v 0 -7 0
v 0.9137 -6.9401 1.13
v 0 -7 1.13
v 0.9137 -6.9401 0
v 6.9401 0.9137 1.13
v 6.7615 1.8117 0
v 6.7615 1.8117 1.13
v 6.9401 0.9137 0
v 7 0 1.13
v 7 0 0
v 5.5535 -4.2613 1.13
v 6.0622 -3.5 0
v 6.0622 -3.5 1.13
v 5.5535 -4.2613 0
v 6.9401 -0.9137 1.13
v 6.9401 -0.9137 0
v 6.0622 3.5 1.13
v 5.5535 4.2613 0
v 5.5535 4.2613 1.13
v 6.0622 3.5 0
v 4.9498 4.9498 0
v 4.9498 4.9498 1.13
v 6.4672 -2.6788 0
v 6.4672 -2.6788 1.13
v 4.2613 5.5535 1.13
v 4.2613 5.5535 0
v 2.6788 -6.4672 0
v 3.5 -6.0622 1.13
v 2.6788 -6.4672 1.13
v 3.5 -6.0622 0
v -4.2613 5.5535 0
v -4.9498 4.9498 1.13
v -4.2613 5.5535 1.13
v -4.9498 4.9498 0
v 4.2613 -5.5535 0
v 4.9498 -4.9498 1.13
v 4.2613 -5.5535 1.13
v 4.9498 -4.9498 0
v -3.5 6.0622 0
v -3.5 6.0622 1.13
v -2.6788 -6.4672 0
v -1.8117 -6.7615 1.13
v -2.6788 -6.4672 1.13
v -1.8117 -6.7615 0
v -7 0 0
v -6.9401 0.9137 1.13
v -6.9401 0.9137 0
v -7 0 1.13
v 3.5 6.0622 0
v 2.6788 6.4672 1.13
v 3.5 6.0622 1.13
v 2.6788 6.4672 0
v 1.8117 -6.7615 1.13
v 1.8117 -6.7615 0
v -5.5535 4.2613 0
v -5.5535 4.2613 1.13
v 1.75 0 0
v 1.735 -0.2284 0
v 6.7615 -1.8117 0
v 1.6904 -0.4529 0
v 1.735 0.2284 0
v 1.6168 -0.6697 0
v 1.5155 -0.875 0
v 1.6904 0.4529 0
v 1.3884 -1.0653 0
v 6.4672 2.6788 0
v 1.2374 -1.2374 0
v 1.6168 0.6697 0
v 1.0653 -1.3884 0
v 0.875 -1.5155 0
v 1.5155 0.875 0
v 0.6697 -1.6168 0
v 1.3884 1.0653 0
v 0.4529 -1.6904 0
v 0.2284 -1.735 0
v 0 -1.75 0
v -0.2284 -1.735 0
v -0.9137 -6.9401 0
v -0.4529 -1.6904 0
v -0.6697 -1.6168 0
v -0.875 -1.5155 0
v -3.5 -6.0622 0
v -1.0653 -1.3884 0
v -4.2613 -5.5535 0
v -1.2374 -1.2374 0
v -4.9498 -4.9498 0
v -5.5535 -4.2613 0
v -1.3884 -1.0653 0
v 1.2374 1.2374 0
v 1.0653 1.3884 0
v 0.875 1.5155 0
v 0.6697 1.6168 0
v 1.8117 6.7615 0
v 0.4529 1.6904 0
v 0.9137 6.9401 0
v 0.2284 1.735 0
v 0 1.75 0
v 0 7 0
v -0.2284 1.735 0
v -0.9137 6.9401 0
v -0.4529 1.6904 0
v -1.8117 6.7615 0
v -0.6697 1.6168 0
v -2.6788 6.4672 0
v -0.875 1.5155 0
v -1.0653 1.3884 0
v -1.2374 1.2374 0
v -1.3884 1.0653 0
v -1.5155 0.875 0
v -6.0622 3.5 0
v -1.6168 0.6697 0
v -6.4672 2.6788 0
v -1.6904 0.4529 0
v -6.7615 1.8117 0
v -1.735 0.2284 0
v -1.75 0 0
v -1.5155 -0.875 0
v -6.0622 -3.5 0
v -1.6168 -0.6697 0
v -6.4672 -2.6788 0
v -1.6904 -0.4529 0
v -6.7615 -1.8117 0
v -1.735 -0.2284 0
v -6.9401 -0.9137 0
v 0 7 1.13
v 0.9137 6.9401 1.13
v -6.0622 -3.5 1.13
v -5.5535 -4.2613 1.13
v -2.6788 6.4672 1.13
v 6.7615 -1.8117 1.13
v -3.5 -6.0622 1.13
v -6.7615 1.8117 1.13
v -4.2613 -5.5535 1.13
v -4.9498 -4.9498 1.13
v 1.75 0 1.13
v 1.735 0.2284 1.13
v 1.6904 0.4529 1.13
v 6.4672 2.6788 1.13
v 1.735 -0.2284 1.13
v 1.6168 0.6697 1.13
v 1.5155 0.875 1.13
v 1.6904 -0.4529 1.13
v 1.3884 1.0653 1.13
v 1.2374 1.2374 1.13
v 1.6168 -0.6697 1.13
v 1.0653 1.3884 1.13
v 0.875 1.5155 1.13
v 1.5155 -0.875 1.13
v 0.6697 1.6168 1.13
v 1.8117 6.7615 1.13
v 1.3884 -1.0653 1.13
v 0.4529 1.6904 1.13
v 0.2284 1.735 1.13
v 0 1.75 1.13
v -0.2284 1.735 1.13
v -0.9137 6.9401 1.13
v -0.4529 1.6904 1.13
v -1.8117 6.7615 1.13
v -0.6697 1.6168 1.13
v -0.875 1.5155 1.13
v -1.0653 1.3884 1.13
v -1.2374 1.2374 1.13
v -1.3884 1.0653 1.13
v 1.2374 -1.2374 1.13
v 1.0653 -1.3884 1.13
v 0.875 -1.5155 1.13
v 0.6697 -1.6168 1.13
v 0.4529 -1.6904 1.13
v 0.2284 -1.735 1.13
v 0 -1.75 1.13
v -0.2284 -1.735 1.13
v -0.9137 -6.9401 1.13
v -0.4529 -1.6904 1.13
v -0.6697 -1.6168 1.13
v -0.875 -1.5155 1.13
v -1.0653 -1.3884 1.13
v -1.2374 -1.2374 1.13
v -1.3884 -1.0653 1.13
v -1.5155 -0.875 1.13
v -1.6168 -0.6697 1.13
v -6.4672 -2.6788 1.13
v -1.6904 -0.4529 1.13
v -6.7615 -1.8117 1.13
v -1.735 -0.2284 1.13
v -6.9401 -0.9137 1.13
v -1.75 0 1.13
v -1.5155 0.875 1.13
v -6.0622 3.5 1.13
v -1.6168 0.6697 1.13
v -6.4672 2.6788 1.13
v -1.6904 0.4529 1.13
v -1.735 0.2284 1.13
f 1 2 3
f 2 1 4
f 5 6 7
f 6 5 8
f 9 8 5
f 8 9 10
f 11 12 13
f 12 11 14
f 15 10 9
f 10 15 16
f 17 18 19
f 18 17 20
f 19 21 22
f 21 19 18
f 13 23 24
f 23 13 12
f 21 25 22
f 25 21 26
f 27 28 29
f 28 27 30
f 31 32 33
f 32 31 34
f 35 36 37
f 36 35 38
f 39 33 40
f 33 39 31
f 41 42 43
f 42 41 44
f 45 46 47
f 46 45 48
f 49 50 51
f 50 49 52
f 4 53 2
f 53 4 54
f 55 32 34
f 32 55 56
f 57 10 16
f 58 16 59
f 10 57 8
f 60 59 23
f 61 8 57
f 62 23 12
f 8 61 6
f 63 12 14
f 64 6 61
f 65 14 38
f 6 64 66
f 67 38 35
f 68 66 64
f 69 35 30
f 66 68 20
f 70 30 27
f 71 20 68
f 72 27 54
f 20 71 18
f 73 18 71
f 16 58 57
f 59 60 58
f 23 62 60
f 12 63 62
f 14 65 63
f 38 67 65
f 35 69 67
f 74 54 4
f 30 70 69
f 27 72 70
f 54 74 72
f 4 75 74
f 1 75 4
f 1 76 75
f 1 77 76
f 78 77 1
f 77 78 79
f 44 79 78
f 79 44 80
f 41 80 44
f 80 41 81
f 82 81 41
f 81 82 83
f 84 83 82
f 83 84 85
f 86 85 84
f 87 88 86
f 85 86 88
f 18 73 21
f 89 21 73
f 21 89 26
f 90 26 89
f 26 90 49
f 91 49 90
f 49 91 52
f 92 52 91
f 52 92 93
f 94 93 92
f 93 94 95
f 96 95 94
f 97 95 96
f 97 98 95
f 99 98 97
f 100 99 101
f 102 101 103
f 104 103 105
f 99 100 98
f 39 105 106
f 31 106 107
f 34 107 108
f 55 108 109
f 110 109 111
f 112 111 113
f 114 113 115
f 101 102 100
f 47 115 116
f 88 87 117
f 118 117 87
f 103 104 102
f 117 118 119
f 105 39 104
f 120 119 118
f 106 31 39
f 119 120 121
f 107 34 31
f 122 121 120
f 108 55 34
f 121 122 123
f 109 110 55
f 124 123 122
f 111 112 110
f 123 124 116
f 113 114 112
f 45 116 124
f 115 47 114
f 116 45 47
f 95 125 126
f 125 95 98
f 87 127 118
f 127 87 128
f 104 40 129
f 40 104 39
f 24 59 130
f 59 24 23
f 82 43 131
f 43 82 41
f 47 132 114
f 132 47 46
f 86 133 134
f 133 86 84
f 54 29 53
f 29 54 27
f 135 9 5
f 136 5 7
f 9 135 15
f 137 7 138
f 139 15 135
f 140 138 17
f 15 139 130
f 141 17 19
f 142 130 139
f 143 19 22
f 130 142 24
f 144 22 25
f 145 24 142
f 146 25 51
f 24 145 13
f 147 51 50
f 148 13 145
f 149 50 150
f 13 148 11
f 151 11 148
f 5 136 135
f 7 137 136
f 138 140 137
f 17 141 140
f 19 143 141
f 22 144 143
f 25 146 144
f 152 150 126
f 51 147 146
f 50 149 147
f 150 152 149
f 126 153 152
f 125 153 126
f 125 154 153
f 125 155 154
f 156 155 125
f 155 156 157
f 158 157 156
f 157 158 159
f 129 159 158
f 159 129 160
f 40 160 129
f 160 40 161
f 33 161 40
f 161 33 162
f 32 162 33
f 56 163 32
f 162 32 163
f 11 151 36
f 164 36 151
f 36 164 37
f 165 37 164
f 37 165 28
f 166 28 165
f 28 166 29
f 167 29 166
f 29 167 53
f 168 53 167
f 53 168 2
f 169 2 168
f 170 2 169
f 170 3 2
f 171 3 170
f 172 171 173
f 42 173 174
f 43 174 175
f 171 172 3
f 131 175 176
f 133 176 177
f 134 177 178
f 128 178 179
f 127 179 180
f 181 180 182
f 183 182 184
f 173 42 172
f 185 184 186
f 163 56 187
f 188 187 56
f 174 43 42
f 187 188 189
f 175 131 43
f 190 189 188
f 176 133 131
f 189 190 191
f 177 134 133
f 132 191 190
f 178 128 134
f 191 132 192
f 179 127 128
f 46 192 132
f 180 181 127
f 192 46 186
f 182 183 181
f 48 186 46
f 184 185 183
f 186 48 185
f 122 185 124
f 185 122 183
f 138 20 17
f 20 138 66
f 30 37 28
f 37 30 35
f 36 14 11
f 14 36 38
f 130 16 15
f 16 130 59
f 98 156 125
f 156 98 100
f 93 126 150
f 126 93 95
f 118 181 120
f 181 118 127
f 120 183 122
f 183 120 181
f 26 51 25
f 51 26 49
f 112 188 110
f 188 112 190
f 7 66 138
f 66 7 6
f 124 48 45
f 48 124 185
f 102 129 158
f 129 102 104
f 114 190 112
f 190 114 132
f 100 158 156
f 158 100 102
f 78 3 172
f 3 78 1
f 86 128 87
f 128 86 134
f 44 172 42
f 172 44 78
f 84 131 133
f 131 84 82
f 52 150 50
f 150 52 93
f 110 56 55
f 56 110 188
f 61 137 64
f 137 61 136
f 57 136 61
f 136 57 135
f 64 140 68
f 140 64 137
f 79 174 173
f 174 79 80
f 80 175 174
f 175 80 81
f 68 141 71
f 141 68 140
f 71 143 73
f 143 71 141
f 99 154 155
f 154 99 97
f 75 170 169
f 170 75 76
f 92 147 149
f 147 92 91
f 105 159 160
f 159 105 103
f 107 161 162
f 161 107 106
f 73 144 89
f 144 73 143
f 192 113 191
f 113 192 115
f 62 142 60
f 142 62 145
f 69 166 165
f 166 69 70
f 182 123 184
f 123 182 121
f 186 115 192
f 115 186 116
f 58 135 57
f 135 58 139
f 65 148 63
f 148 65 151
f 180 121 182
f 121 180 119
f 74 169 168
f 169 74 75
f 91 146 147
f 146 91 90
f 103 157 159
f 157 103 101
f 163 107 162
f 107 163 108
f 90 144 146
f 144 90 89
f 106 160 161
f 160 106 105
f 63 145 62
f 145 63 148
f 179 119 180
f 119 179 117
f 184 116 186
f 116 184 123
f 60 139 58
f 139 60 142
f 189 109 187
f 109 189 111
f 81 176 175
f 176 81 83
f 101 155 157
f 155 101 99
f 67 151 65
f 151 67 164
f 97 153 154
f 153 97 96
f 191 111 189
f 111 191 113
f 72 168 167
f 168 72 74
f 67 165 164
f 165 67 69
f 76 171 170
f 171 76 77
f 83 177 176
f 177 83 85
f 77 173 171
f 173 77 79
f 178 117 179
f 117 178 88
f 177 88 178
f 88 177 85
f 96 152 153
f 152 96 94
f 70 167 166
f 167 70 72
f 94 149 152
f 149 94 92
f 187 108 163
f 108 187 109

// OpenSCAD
// file: parameters.scad
// =============================================================================
// Gen-BB Vernier flux-claw ultra - WOUND-AWARE (HARD GATE)
// Dual-rotor vernier: Rotor B +22.5 deg vs 12-slot stator; O5 flux claws
// =============================================================================

wire_awg            = 26;
wire_od             = 0.45;
turns               = 215;      // +5 vs Gen-AY 210
fill                = 0.70;
layers_per_face     = 2;
wind_build_axial    = layers_per_face * wire_od * fill;   // 0.63 mm
wind_build_radial   = 3 * wire_od * fill;                 // 0.945 mm

coil_id_r           = 14.0;
coil_od_r           = 61.0;
span_deg            = 25.0;
former_web          = 1.20;     // print floor LB walls
flange_t            = 0.60;
wall                = 1.2;
slot_w              = 2.4;
mount_hole          = 3.5;
tab_len             = 7.0;

former_bare_h       = former_web + 2 * flange_t;            // 2.40 mm
coil_envelope_h     = former_bare_h + 2 * wind_build_axial; // 3.66 mm

run_clear           = 0.50;
gap_spacer_h        = run_clear + wind_build_axial;         // 1.13 mm
m2m                 = coil_envelope_h + 2 * run_clear;      // 4.66 mm

coil_stations       = 12;
bay_r_in            = coil_id_r - 2.0 - wind_build_radial;
bay_r_out           = coil_od_r + 2.0 + wind_build_radial;
bay_span            = span_deg + 4.0;
bay_offset          = 2.0;
stator_thick        = former_bare_h;
stator_od           = 160.0;
shaft_clear_stator  = 34.0;
coil_mount_r        = 25.5;

large_pocket_d      = 20.3;
small_pocket_d      = 5.3;
pocket_h            = 5.2;
large_n             = 8;
R_large             = 37.5;     // closer to copper centroid vs AY R=38.0
R_small_inner       = 23.5;
R_small_mid         = 37.5;
R_small_outer       = 53.5;
carrier_od          = 156.0;
carrier_thick       = 7.5;
hub_h               = 10.0;
hub_od              = 30.0;
rotor_b_offset_deg  = 22.5;     // vernier offset vs 12-slot stator

shaft_bore          = 8.35;
bearing_d           = 21.85;
bearing_h           = 7.2;
m3_clear            = 3.5;
bolt_r_inner        = 36.0;
bolt_n_inner        = 6;
flange_bolt_r       = 72.0;
flange_bolt_n       = 6;
brace_r             = 68.0;
brace_d             = 4.3;
brace_n             = 4;

spacer_pad_od       = 14.0;
spacer_pad_id       = m3_clear;
endbell_od          = 160.0;
endbell_thick       = 8.0;
endbell_shaft_clear = 10.0;

$fn = 64;
// main file
// Gen-AY gap spacer — h = run_clear + wind_build_axial
include <parameters.scad>;
$fn = 48;
difference() {
    cylinder(d=spacer_pad_od, h=gap_spacer_h);
    translate([0, 0, -0.1]) cylinder(d=spacer_pad_id, h=gap_spacer_h + 0.2);
}
